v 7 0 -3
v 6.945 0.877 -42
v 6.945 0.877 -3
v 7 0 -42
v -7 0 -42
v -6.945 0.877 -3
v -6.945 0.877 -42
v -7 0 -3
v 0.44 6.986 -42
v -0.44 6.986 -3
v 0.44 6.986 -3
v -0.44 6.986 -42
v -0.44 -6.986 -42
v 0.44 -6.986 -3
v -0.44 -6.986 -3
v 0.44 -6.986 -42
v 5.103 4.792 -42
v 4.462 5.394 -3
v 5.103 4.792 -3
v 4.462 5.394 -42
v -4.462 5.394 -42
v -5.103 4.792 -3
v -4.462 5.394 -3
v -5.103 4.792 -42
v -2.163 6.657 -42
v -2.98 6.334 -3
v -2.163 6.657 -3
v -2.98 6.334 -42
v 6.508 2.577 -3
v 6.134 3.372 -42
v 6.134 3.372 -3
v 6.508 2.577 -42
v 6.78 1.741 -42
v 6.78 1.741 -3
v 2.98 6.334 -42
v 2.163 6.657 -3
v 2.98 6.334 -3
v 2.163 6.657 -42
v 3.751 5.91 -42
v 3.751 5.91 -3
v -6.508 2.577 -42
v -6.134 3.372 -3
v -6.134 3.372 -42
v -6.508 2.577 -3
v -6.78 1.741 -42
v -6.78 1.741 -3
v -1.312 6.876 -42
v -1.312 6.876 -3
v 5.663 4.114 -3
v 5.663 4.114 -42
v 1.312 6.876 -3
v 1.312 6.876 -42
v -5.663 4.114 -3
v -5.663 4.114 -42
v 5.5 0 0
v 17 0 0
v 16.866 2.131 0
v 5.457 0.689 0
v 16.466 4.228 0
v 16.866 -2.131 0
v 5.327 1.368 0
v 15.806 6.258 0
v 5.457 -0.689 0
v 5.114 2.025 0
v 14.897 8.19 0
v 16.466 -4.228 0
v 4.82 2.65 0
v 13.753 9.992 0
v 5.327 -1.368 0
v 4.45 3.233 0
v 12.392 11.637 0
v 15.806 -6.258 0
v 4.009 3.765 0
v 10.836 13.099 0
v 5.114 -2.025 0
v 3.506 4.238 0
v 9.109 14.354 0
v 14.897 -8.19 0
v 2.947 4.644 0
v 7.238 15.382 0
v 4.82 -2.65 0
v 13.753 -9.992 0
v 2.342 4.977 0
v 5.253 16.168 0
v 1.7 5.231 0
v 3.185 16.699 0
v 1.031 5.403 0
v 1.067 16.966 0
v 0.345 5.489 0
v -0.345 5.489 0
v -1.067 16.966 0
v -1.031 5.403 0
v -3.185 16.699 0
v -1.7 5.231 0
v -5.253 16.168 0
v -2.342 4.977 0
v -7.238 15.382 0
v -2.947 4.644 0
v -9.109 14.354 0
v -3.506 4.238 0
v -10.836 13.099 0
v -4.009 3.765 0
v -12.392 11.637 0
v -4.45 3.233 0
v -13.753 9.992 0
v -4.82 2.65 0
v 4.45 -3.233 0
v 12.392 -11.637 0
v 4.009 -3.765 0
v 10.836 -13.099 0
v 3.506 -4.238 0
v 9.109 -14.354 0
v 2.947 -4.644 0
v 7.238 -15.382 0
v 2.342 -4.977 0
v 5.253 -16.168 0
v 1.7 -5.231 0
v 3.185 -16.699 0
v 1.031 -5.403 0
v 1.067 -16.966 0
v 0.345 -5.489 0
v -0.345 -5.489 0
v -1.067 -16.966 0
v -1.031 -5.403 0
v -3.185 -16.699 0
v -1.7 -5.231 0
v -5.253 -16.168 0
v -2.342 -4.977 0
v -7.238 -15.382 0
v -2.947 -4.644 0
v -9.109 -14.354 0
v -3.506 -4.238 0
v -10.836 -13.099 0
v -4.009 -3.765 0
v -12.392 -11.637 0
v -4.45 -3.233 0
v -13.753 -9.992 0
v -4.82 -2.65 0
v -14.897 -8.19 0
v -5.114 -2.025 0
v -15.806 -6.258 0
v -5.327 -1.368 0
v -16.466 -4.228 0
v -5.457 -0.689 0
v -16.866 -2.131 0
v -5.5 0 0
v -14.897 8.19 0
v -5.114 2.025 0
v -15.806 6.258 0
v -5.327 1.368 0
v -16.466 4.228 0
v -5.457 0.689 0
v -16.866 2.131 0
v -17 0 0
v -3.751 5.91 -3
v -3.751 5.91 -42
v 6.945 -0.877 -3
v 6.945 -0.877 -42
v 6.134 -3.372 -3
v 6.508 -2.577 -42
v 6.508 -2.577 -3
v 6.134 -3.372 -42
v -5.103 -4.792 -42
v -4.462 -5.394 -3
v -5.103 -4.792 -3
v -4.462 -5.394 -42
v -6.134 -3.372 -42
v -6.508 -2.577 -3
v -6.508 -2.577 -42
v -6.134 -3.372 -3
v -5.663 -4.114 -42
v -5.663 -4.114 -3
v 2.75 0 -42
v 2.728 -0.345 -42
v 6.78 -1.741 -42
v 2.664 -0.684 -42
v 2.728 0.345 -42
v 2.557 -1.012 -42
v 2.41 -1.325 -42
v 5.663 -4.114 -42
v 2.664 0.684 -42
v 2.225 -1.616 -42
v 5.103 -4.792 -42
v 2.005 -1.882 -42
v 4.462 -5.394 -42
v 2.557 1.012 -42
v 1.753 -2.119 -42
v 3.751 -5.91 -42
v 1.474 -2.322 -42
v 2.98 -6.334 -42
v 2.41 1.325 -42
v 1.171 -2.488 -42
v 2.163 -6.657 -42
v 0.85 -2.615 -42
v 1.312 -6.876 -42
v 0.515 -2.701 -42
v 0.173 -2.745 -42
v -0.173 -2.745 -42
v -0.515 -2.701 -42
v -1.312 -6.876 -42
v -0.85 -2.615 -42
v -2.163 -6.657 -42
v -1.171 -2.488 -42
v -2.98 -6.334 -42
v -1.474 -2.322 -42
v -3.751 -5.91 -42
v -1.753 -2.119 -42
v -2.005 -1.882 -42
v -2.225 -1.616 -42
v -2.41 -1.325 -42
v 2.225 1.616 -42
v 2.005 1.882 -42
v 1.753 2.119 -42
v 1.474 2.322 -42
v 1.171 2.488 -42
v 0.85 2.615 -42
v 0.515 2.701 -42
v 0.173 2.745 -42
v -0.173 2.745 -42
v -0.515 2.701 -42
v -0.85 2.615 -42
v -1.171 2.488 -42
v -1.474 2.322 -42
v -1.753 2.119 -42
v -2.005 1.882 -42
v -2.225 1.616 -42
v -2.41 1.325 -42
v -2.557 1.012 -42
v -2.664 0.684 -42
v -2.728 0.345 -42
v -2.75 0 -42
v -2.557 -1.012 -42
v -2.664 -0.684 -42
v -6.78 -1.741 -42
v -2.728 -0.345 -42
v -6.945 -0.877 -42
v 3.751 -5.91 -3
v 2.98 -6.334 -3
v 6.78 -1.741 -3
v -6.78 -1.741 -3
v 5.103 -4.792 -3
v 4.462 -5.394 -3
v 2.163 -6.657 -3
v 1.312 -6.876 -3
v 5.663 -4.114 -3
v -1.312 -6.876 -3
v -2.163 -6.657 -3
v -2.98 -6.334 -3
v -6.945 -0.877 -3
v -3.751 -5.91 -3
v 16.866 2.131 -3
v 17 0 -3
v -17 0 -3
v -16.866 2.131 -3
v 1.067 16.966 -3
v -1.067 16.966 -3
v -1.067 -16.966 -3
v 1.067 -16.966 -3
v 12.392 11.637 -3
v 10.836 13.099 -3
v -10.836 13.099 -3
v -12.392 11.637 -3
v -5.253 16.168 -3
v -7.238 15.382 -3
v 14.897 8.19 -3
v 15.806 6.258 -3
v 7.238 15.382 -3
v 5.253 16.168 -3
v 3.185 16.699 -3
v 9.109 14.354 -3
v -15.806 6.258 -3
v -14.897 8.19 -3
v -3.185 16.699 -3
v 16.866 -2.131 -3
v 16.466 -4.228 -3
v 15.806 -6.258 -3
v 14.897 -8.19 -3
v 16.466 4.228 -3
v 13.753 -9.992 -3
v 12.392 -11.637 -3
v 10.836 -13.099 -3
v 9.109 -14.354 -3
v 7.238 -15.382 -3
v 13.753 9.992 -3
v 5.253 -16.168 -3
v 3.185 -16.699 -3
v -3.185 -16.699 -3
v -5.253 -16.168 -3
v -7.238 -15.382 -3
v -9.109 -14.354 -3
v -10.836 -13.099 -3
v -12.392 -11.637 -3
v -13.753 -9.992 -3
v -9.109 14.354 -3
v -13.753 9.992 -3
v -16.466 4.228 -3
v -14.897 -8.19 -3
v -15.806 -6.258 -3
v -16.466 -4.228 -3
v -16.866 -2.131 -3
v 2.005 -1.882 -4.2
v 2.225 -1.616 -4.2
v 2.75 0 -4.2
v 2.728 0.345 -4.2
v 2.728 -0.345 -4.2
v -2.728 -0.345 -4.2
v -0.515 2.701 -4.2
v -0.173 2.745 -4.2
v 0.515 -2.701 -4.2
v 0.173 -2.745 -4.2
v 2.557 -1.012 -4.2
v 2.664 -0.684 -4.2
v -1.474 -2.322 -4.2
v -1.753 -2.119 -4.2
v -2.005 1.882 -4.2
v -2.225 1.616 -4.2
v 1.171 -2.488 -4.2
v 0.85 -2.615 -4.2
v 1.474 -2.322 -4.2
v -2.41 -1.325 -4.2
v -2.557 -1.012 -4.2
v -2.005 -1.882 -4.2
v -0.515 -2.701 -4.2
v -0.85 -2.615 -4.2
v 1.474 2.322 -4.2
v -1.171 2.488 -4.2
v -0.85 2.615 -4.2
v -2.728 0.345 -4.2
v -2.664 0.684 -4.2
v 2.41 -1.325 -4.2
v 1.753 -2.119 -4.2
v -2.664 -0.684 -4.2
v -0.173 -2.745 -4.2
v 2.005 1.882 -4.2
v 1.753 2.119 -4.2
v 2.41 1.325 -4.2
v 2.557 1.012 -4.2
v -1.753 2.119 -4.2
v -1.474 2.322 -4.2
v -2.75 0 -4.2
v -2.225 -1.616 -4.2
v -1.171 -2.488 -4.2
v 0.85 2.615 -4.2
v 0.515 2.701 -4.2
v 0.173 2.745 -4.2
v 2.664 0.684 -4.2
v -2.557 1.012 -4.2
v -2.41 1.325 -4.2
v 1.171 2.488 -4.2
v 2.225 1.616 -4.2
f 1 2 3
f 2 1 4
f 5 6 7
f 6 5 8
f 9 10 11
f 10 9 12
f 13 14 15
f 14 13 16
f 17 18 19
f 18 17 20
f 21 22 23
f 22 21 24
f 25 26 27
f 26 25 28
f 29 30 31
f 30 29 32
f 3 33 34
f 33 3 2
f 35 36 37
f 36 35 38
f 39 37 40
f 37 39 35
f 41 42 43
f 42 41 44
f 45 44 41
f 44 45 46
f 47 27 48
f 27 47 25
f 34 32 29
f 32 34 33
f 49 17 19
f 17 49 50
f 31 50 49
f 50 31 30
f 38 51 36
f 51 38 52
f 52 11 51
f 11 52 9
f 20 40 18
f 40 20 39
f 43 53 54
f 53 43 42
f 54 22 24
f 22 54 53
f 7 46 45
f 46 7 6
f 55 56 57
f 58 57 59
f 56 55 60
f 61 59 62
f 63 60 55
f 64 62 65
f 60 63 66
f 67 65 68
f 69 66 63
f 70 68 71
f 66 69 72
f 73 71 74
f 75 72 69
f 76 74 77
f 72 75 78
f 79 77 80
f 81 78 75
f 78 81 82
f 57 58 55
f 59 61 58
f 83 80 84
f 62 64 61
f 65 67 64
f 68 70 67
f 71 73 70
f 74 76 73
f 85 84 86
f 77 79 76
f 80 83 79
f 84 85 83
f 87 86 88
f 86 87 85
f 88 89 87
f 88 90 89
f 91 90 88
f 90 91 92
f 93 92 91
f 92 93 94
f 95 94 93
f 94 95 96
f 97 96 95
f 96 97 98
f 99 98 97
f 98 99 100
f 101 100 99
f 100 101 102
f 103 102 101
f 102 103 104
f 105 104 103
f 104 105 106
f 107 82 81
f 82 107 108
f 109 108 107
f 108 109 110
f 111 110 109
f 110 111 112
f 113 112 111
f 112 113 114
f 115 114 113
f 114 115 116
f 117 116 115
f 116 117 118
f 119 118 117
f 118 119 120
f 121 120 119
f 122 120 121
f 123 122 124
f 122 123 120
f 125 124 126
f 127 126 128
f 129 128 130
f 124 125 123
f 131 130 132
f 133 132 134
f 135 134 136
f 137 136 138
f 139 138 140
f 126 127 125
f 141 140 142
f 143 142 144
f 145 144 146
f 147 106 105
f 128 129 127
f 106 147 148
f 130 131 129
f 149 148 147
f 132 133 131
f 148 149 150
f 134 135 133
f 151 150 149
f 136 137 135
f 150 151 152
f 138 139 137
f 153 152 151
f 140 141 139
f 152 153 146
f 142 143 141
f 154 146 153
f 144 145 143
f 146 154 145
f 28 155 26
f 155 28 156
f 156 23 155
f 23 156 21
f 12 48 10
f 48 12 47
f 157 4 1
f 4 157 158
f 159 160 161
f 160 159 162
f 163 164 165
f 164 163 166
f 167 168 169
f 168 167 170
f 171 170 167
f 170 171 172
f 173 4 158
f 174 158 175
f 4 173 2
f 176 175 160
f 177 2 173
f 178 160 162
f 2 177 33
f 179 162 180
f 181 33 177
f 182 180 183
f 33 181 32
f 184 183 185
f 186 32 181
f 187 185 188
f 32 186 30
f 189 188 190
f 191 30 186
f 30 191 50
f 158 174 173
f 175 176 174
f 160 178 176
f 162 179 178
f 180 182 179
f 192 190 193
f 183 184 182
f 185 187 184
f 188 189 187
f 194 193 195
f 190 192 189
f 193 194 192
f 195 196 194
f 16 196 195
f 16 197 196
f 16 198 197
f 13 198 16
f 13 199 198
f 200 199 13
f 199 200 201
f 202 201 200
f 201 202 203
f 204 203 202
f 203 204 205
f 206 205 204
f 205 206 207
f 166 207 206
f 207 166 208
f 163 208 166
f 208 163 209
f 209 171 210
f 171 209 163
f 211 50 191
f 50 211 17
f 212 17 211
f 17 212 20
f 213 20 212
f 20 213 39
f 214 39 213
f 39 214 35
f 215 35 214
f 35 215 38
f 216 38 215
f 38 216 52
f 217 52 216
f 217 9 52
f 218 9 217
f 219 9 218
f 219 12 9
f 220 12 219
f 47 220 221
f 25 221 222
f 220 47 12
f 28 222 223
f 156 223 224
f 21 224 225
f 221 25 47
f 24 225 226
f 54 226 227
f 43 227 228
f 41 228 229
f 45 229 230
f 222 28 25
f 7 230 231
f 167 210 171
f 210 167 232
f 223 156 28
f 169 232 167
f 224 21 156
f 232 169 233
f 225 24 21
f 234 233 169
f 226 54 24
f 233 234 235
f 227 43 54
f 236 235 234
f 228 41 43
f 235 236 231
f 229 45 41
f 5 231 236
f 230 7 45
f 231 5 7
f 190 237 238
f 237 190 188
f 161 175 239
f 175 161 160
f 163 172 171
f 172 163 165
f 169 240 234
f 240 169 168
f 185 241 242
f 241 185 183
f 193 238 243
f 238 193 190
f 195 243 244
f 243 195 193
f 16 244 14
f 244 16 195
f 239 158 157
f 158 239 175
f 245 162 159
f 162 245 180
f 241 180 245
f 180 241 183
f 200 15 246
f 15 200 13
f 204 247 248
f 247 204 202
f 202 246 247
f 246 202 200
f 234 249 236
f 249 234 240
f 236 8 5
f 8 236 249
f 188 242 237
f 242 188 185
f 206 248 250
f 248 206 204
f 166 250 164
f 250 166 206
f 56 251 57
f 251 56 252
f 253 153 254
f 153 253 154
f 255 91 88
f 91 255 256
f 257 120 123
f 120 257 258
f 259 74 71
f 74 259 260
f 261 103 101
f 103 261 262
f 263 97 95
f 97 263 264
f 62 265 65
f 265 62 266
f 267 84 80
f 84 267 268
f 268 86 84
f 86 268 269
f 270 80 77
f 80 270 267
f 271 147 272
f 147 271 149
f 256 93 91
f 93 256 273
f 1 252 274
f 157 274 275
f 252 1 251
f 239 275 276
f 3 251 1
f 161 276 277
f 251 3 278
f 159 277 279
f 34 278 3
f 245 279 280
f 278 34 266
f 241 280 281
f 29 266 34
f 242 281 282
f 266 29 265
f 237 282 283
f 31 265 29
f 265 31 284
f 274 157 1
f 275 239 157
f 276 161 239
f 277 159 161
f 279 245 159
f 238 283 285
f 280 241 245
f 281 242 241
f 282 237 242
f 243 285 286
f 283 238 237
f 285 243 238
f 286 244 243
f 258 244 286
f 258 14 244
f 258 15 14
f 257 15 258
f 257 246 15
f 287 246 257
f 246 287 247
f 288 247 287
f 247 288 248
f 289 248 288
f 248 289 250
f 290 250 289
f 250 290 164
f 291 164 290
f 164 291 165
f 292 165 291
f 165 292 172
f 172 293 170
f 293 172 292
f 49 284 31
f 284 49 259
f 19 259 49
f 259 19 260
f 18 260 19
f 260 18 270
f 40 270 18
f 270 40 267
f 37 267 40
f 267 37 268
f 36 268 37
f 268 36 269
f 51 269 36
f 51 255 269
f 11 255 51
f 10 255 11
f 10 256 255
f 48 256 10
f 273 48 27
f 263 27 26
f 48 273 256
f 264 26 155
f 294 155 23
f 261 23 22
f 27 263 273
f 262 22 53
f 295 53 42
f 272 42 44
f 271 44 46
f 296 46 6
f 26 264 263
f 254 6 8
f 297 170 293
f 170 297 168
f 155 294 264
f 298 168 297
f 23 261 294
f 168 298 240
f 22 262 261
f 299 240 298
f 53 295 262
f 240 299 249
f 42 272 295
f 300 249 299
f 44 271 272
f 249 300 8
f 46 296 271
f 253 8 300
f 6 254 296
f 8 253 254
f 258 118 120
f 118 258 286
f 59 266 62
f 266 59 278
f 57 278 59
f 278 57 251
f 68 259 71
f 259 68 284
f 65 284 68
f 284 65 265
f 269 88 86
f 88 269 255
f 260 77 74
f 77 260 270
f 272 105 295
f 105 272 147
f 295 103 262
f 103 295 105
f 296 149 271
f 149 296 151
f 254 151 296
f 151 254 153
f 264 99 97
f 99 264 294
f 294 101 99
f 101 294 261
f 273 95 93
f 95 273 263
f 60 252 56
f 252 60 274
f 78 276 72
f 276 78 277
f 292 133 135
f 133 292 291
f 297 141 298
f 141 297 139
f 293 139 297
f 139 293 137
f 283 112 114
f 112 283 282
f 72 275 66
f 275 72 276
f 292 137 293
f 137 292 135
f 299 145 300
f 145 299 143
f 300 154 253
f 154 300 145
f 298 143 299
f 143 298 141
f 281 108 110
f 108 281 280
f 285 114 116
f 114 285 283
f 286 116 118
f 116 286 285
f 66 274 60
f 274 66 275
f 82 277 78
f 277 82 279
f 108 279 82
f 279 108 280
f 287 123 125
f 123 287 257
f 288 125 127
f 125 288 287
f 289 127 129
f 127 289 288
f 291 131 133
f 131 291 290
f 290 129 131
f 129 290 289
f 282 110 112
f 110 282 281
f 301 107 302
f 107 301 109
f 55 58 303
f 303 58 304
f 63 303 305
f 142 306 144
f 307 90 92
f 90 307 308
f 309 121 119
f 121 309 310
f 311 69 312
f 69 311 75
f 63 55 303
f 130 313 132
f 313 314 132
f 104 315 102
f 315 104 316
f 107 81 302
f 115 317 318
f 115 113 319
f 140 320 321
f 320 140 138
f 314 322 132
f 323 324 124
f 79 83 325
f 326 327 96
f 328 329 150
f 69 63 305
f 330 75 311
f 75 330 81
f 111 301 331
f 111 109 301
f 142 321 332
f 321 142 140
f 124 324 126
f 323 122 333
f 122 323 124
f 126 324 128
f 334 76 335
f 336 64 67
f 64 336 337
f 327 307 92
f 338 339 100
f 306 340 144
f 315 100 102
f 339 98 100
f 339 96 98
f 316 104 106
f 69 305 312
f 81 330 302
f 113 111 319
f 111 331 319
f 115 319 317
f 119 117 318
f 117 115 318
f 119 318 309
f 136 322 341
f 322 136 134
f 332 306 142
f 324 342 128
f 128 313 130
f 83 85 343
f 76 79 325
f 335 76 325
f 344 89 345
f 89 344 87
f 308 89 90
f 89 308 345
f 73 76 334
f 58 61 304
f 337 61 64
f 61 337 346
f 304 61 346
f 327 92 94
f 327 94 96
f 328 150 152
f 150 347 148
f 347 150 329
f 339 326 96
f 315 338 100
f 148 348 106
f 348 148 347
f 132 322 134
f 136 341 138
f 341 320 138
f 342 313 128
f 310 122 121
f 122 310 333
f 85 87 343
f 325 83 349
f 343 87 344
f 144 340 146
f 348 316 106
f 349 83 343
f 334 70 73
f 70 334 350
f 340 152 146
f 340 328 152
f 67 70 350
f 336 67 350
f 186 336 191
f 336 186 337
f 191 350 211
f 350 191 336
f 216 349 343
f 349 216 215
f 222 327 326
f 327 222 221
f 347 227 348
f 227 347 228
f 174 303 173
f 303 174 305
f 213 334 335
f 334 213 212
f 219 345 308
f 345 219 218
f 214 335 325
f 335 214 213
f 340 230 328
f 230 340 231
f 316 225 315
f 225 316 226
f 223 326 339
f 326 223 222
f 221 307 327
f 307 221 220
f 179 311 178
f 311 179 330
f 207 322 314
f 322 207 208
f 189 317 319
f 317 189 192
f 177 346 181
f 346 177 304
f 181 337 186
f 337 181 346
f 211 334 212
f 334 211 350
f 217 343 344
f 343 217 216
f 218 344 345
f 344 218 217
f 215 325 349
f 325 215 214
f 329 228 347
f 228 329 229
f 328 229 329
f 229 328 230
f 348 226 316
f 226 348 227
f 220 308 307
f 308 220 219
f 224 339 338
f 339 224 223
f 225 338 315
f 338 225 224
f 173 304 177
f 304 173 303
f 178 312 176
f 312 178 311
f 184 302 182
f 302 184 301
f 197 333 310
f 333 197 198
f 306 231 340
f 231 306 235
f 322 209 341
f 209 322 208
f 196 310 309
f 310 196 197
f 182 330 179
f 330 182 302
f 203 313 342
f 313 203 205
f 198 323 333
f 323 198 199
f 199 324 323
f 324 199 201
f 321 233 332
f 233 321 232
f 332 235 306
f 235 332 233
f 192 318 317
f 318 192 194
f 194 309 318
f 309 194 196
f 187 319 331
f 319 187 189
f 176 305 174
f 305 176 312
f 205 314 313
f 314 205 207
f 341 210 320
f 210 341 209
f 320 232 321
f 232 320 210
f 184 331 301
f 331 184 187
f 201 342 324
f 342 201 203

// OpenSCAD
$fn = 50;


difference() {
	union() {
		translate(v = [0, 0, -42.0000000000]) {
			cylinder(h = 42, r = 7.0000000000);
		}
		translate(v = [0, 0, -3.0000000000]) {
			cylinder(h = 3, r = 17.0000000000);
		}
	}
	union() {
		translate(v = [0, 0, 0]) {
			rotate(a = [0, 0, 0]) {
				difference() {
					union() {
						#translate(v = [0, 0, -42.0000000000]) {
							cylinder(h = 42, r = 2.2500000000);
						}
						#translate(v = [0, 0, -4.2000000000]) {
							cylinder(h = 4.2000000000, r1 = 2.7500000000, r2 = 5.5000000000);
						}
						#translate(v = [0, 0, -42.0000000000]) {
							cylinder(h = 42, r = 2.7500000000);
						}
						#translate(v = [0, 0, -42.0000000000]) {
							cylinder(h = 42, r = 2.2500000000);
						}
					}
					union();
				}
			}
		}
	}
}
